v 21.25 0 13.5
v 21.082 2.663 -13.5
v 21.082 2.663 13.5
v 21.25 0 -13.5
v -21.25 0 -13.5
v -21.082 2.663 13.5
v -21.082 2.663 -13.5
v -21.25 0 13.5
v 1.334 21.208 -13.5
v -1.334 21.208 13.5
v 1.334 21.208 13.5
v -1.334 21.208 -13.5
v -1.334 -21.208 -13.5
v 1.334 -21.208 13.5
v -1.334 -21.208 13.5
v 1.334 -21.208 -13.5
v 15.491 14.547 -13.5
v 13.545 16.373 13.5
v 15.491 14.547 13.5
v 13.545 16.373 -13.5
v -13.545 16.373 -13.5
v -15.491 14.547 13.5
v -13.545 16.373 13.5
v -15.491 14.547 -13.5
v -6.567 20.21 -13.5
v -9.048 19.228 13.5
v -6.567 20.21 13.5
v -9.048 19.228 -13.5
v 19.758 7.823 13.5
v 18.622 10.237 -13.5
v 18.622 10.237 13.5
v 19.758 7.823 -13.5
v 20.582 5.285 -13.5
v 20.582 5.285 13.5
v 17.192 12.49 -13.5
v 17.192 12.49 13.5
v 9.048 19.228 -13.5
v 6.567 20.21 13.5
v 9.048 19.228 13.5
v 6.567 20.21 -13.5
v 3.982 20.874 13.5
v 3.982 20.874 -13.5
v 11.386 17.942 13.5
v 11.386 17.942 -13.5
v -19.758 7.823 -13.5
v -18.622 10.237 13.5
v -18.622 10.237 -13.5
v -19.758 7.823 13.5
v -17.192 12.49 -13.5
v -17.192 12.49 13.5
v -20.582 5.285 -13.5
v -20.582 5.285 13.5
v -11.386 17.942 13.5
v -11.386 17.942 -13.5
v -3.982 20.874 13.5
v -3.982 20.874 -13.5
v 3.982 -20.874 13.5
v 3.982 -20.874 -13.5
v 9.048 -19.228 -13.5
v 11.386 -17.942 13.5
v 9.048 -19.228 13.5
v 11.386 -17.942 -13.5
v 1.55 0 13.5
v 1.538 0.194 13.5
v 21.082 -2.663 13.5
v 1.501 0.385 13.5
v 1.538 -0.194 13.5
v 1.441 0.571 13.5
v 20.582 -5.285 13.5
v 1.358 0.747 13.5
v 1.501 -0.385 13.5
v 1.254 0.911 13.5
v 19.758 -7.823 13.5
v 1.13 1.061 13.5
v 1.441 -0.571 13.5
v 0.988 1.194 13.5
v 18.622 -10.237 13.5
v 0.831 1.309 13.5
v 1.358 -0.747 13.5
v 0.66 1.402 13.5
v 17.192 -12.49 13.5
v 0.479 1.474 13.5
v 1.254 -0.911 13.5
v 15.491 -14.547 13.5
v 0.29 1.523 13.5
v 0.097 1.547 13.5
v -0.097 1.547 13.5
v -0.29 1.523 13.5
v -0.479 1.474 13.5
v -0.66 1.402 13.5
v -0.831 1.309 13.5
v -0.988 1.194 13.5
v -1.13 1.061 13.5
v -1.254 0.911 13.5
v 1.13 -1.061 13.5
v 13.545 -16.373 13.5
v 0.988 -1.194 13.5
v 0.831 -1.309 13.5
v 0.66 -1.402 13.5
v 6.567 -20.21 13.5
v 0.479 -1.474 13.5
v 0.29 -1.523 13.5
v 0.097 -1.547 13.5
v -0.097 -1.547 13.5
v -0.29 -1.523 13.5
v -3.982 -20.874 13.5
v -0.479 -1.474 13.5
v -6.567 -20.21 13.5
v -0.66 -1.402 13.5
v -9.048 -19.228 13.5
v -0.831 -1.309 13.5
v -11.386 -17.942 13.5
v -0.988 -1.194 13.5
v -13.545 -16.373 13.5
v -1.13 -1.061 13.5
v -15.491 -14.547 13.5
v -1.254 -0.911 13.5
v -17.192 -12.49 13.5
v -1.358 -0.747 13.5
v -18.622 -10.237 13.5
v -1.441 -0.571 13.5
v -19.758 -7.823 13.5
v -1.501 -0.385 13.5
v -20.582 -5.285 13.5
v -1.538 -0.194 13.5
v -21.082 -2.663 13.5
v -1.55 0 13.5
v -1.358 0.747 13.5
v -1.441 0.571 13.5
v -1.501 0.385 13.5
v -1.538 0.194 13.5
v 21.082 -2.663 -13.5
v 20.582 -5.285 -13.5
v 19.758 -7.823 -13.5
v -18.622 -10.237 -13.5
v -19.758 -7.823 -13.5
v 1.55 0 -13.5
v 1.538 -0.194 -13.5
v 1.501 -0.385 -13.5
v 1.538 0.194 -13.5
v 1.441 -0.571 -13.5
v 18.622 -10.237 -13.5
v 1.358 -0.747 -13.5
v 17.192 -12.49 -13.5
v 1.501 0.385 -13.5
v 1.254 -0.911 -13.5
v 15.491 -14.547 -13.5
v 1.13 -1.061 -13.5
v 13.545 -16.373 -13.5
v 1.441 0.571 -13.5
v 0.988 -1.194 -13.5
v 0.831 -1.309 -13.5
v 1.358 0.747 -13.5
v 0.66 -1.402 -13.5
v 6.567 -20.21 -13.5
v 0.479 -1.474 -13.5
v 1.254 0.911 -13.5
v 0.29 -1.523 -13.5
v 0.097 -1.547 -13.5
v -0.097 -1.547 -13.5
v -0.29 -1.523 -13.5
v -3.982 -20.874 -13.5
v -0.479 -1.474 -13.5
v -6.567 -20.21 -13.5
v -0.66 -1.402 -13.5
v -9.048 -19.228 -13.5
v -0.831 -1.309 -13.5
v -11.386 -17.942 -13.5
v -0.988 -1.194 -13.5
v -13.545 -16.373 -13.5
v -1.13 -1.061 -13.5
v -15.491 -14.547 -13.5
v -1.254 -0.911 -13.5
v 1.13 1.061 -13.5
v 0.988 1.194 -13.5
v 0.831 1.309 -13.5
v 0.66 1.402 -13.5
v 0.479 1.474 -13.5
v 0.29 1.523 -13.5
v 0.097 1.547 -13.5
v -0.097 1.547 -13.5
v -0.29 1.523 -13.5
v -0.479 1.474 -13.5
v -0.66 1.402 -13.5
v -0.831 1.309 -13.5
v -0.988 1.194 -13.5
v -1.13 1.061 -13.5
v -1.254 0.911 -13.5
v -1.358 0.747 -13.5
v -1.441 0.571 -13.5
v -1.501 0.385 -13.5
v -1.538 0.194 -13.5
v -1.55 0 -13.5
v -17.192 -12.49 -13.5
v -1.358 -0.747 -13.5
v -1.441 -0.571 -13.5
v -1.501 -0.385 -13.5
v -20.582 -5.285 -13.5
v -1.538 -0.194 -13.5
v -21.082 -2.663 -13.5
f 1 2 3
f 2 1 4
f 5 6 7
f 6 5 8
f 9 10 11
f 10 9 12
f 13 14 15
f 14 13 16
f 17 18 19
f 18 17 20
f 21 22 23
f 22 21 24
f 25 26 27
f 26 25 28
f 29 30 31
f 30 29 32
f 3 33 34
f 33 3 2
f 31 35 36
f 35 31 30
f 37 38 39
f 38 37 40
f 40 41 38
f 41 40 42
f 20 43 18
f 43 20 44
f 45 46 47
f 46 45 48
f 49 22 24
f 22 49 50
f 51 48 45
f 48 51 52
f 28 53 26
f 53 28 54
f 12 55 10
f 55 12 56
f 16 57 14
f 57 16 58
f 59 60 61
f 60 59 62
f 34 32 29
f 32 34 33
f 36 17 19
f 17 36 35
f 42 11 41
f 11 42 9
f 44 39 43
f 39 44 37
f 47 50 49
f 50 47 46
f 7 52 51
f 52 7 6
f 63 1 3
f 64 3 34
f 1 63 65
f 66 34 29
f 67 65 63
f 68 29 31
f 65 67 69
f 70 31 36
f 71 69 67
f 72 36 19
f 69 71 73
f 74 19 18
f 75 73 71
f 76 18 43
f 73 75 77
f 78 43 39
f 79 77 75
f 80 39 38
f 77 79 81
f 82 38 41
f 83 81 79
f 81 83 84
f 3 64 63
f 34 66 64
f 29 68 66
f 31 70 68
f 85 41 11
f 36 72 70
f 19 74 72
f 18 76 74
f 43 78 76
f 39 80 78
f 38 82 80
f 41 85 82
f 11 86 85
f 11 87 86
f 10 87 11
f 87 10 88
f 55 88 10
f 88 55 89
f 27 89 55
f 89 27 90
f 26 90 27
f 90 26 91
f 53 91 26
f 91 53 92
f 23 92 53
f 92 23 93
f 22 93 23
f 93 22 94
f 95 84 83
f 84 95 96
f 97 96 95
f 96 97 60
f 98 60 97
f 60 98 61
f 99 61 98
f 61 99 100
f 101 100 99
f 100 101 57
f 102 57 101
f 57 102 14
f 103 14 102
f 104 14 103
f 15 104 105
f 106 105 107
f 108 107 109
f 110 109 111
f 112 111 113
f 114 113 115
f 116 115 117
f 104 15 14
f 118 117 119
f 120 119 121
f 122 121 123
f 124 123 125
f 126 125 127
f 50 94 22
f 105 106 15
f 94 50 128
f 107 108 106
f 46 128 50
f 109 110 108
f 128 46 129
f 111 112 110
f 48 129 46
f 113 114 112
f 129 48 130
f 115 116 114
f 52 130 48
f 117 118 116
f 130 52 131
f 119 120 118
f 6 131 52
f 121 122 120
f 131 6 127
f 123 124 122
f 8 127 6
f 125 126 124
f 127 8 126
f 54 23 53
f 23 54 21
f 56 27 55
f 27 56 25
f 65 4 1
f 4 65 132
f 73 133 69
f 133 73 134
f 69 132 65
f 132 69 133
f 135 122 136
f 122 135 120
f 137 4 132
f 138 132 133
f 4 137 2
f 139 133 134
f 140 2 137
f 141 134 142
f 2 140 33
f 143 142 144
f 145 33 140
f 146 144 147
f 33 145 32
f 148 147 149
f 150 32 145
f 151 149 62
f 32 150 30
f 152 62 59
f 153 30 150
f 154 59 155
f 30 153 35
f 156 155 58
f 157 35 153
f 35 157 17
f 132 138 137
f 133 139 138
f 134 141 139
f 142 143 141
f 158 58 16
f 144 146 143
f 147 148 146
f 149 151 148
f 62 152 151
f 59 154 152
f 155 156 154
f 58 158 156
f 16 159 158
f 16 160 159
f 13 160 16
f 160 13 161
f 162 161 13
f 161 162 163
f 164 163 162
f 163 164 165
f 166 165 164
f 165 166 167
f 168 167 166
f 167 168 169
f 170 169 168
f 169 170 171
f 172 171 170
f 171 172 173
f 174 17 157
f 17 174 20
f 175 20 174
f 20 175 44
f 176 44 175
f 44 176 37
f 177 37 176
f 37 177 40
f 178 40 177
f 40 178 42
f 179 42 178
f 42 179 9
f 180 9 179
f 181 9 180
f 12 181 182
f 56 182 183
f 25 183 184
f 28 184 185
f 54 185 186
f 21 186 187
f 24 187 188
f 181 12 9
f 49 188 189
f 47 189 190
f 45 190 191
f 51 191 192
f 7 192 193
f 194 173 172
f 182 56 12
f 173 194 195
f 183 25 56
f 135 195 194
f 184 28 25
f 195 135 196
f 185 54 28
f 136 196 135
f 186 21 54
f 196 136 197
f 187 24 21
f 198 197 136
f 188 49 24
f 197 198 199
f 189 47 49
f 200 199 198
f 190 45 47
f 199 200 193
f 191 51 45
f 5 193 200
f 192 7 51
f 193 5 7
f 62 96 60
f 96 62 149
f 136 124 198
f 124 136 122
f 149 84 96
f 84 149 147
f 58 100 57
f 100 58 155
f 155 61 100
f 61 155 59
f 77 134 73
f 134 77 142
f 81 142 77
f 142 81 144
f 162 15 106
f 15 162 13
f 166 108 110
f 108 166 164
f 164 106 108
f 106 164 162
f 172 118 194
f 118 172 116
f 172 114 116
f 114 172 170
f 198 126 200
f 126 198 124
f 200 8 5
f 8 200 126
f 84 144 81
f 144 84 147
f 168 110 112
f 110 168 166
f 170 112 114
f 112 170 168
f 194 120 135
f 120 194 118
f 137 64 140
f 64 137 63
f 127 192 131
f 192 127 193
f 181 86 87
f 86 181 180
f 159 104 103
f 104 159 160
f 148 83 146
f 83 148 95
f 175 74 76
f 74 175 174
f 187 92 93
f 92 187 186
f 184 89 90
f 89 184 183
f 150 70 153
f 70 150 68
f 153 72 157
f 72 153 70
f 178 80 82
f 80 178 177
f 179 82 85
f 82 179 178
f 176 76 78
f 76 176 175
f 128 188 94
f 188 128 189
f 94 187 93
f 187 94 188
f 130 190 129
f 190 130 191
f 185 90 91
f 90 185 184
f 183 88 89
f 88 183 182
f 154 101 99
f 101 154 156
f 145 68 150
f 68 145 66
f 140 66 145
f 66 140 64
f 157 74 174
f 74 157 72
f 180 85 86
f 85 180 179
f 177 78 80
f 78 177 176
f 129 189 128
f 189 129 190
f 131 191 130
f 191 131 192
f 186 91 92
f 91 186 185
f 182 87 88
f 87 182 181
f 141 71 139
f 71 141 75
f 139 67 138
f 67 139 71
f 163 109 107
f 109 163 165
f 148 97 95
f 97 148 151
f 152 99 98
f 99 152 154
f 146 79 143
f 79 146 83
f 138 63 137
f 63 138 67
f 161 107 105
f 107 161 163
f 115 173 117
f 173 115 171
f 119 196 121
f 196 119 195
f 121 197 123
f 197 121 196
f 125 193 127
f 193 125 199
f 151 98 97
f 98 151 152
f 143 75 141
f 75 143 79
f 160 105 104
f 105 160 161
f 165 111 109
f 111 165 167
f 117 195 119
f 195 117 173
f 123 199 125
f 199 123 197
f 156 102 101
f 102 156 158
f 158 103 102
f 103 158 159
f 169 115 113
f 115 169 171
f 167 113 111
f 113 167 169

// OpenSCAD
$fn = 50;


difference() {
	union() {
		translate(v = [0, 0, -13.5000000000]) {
			cylinder(h = 27, r = 21.2500000000);
		}
	}
	union() {
		translate(v = [0, 0, -100.0000000000]) {
			cylinder(h = 200, r = 1.5500000000);
		}
	}
}
